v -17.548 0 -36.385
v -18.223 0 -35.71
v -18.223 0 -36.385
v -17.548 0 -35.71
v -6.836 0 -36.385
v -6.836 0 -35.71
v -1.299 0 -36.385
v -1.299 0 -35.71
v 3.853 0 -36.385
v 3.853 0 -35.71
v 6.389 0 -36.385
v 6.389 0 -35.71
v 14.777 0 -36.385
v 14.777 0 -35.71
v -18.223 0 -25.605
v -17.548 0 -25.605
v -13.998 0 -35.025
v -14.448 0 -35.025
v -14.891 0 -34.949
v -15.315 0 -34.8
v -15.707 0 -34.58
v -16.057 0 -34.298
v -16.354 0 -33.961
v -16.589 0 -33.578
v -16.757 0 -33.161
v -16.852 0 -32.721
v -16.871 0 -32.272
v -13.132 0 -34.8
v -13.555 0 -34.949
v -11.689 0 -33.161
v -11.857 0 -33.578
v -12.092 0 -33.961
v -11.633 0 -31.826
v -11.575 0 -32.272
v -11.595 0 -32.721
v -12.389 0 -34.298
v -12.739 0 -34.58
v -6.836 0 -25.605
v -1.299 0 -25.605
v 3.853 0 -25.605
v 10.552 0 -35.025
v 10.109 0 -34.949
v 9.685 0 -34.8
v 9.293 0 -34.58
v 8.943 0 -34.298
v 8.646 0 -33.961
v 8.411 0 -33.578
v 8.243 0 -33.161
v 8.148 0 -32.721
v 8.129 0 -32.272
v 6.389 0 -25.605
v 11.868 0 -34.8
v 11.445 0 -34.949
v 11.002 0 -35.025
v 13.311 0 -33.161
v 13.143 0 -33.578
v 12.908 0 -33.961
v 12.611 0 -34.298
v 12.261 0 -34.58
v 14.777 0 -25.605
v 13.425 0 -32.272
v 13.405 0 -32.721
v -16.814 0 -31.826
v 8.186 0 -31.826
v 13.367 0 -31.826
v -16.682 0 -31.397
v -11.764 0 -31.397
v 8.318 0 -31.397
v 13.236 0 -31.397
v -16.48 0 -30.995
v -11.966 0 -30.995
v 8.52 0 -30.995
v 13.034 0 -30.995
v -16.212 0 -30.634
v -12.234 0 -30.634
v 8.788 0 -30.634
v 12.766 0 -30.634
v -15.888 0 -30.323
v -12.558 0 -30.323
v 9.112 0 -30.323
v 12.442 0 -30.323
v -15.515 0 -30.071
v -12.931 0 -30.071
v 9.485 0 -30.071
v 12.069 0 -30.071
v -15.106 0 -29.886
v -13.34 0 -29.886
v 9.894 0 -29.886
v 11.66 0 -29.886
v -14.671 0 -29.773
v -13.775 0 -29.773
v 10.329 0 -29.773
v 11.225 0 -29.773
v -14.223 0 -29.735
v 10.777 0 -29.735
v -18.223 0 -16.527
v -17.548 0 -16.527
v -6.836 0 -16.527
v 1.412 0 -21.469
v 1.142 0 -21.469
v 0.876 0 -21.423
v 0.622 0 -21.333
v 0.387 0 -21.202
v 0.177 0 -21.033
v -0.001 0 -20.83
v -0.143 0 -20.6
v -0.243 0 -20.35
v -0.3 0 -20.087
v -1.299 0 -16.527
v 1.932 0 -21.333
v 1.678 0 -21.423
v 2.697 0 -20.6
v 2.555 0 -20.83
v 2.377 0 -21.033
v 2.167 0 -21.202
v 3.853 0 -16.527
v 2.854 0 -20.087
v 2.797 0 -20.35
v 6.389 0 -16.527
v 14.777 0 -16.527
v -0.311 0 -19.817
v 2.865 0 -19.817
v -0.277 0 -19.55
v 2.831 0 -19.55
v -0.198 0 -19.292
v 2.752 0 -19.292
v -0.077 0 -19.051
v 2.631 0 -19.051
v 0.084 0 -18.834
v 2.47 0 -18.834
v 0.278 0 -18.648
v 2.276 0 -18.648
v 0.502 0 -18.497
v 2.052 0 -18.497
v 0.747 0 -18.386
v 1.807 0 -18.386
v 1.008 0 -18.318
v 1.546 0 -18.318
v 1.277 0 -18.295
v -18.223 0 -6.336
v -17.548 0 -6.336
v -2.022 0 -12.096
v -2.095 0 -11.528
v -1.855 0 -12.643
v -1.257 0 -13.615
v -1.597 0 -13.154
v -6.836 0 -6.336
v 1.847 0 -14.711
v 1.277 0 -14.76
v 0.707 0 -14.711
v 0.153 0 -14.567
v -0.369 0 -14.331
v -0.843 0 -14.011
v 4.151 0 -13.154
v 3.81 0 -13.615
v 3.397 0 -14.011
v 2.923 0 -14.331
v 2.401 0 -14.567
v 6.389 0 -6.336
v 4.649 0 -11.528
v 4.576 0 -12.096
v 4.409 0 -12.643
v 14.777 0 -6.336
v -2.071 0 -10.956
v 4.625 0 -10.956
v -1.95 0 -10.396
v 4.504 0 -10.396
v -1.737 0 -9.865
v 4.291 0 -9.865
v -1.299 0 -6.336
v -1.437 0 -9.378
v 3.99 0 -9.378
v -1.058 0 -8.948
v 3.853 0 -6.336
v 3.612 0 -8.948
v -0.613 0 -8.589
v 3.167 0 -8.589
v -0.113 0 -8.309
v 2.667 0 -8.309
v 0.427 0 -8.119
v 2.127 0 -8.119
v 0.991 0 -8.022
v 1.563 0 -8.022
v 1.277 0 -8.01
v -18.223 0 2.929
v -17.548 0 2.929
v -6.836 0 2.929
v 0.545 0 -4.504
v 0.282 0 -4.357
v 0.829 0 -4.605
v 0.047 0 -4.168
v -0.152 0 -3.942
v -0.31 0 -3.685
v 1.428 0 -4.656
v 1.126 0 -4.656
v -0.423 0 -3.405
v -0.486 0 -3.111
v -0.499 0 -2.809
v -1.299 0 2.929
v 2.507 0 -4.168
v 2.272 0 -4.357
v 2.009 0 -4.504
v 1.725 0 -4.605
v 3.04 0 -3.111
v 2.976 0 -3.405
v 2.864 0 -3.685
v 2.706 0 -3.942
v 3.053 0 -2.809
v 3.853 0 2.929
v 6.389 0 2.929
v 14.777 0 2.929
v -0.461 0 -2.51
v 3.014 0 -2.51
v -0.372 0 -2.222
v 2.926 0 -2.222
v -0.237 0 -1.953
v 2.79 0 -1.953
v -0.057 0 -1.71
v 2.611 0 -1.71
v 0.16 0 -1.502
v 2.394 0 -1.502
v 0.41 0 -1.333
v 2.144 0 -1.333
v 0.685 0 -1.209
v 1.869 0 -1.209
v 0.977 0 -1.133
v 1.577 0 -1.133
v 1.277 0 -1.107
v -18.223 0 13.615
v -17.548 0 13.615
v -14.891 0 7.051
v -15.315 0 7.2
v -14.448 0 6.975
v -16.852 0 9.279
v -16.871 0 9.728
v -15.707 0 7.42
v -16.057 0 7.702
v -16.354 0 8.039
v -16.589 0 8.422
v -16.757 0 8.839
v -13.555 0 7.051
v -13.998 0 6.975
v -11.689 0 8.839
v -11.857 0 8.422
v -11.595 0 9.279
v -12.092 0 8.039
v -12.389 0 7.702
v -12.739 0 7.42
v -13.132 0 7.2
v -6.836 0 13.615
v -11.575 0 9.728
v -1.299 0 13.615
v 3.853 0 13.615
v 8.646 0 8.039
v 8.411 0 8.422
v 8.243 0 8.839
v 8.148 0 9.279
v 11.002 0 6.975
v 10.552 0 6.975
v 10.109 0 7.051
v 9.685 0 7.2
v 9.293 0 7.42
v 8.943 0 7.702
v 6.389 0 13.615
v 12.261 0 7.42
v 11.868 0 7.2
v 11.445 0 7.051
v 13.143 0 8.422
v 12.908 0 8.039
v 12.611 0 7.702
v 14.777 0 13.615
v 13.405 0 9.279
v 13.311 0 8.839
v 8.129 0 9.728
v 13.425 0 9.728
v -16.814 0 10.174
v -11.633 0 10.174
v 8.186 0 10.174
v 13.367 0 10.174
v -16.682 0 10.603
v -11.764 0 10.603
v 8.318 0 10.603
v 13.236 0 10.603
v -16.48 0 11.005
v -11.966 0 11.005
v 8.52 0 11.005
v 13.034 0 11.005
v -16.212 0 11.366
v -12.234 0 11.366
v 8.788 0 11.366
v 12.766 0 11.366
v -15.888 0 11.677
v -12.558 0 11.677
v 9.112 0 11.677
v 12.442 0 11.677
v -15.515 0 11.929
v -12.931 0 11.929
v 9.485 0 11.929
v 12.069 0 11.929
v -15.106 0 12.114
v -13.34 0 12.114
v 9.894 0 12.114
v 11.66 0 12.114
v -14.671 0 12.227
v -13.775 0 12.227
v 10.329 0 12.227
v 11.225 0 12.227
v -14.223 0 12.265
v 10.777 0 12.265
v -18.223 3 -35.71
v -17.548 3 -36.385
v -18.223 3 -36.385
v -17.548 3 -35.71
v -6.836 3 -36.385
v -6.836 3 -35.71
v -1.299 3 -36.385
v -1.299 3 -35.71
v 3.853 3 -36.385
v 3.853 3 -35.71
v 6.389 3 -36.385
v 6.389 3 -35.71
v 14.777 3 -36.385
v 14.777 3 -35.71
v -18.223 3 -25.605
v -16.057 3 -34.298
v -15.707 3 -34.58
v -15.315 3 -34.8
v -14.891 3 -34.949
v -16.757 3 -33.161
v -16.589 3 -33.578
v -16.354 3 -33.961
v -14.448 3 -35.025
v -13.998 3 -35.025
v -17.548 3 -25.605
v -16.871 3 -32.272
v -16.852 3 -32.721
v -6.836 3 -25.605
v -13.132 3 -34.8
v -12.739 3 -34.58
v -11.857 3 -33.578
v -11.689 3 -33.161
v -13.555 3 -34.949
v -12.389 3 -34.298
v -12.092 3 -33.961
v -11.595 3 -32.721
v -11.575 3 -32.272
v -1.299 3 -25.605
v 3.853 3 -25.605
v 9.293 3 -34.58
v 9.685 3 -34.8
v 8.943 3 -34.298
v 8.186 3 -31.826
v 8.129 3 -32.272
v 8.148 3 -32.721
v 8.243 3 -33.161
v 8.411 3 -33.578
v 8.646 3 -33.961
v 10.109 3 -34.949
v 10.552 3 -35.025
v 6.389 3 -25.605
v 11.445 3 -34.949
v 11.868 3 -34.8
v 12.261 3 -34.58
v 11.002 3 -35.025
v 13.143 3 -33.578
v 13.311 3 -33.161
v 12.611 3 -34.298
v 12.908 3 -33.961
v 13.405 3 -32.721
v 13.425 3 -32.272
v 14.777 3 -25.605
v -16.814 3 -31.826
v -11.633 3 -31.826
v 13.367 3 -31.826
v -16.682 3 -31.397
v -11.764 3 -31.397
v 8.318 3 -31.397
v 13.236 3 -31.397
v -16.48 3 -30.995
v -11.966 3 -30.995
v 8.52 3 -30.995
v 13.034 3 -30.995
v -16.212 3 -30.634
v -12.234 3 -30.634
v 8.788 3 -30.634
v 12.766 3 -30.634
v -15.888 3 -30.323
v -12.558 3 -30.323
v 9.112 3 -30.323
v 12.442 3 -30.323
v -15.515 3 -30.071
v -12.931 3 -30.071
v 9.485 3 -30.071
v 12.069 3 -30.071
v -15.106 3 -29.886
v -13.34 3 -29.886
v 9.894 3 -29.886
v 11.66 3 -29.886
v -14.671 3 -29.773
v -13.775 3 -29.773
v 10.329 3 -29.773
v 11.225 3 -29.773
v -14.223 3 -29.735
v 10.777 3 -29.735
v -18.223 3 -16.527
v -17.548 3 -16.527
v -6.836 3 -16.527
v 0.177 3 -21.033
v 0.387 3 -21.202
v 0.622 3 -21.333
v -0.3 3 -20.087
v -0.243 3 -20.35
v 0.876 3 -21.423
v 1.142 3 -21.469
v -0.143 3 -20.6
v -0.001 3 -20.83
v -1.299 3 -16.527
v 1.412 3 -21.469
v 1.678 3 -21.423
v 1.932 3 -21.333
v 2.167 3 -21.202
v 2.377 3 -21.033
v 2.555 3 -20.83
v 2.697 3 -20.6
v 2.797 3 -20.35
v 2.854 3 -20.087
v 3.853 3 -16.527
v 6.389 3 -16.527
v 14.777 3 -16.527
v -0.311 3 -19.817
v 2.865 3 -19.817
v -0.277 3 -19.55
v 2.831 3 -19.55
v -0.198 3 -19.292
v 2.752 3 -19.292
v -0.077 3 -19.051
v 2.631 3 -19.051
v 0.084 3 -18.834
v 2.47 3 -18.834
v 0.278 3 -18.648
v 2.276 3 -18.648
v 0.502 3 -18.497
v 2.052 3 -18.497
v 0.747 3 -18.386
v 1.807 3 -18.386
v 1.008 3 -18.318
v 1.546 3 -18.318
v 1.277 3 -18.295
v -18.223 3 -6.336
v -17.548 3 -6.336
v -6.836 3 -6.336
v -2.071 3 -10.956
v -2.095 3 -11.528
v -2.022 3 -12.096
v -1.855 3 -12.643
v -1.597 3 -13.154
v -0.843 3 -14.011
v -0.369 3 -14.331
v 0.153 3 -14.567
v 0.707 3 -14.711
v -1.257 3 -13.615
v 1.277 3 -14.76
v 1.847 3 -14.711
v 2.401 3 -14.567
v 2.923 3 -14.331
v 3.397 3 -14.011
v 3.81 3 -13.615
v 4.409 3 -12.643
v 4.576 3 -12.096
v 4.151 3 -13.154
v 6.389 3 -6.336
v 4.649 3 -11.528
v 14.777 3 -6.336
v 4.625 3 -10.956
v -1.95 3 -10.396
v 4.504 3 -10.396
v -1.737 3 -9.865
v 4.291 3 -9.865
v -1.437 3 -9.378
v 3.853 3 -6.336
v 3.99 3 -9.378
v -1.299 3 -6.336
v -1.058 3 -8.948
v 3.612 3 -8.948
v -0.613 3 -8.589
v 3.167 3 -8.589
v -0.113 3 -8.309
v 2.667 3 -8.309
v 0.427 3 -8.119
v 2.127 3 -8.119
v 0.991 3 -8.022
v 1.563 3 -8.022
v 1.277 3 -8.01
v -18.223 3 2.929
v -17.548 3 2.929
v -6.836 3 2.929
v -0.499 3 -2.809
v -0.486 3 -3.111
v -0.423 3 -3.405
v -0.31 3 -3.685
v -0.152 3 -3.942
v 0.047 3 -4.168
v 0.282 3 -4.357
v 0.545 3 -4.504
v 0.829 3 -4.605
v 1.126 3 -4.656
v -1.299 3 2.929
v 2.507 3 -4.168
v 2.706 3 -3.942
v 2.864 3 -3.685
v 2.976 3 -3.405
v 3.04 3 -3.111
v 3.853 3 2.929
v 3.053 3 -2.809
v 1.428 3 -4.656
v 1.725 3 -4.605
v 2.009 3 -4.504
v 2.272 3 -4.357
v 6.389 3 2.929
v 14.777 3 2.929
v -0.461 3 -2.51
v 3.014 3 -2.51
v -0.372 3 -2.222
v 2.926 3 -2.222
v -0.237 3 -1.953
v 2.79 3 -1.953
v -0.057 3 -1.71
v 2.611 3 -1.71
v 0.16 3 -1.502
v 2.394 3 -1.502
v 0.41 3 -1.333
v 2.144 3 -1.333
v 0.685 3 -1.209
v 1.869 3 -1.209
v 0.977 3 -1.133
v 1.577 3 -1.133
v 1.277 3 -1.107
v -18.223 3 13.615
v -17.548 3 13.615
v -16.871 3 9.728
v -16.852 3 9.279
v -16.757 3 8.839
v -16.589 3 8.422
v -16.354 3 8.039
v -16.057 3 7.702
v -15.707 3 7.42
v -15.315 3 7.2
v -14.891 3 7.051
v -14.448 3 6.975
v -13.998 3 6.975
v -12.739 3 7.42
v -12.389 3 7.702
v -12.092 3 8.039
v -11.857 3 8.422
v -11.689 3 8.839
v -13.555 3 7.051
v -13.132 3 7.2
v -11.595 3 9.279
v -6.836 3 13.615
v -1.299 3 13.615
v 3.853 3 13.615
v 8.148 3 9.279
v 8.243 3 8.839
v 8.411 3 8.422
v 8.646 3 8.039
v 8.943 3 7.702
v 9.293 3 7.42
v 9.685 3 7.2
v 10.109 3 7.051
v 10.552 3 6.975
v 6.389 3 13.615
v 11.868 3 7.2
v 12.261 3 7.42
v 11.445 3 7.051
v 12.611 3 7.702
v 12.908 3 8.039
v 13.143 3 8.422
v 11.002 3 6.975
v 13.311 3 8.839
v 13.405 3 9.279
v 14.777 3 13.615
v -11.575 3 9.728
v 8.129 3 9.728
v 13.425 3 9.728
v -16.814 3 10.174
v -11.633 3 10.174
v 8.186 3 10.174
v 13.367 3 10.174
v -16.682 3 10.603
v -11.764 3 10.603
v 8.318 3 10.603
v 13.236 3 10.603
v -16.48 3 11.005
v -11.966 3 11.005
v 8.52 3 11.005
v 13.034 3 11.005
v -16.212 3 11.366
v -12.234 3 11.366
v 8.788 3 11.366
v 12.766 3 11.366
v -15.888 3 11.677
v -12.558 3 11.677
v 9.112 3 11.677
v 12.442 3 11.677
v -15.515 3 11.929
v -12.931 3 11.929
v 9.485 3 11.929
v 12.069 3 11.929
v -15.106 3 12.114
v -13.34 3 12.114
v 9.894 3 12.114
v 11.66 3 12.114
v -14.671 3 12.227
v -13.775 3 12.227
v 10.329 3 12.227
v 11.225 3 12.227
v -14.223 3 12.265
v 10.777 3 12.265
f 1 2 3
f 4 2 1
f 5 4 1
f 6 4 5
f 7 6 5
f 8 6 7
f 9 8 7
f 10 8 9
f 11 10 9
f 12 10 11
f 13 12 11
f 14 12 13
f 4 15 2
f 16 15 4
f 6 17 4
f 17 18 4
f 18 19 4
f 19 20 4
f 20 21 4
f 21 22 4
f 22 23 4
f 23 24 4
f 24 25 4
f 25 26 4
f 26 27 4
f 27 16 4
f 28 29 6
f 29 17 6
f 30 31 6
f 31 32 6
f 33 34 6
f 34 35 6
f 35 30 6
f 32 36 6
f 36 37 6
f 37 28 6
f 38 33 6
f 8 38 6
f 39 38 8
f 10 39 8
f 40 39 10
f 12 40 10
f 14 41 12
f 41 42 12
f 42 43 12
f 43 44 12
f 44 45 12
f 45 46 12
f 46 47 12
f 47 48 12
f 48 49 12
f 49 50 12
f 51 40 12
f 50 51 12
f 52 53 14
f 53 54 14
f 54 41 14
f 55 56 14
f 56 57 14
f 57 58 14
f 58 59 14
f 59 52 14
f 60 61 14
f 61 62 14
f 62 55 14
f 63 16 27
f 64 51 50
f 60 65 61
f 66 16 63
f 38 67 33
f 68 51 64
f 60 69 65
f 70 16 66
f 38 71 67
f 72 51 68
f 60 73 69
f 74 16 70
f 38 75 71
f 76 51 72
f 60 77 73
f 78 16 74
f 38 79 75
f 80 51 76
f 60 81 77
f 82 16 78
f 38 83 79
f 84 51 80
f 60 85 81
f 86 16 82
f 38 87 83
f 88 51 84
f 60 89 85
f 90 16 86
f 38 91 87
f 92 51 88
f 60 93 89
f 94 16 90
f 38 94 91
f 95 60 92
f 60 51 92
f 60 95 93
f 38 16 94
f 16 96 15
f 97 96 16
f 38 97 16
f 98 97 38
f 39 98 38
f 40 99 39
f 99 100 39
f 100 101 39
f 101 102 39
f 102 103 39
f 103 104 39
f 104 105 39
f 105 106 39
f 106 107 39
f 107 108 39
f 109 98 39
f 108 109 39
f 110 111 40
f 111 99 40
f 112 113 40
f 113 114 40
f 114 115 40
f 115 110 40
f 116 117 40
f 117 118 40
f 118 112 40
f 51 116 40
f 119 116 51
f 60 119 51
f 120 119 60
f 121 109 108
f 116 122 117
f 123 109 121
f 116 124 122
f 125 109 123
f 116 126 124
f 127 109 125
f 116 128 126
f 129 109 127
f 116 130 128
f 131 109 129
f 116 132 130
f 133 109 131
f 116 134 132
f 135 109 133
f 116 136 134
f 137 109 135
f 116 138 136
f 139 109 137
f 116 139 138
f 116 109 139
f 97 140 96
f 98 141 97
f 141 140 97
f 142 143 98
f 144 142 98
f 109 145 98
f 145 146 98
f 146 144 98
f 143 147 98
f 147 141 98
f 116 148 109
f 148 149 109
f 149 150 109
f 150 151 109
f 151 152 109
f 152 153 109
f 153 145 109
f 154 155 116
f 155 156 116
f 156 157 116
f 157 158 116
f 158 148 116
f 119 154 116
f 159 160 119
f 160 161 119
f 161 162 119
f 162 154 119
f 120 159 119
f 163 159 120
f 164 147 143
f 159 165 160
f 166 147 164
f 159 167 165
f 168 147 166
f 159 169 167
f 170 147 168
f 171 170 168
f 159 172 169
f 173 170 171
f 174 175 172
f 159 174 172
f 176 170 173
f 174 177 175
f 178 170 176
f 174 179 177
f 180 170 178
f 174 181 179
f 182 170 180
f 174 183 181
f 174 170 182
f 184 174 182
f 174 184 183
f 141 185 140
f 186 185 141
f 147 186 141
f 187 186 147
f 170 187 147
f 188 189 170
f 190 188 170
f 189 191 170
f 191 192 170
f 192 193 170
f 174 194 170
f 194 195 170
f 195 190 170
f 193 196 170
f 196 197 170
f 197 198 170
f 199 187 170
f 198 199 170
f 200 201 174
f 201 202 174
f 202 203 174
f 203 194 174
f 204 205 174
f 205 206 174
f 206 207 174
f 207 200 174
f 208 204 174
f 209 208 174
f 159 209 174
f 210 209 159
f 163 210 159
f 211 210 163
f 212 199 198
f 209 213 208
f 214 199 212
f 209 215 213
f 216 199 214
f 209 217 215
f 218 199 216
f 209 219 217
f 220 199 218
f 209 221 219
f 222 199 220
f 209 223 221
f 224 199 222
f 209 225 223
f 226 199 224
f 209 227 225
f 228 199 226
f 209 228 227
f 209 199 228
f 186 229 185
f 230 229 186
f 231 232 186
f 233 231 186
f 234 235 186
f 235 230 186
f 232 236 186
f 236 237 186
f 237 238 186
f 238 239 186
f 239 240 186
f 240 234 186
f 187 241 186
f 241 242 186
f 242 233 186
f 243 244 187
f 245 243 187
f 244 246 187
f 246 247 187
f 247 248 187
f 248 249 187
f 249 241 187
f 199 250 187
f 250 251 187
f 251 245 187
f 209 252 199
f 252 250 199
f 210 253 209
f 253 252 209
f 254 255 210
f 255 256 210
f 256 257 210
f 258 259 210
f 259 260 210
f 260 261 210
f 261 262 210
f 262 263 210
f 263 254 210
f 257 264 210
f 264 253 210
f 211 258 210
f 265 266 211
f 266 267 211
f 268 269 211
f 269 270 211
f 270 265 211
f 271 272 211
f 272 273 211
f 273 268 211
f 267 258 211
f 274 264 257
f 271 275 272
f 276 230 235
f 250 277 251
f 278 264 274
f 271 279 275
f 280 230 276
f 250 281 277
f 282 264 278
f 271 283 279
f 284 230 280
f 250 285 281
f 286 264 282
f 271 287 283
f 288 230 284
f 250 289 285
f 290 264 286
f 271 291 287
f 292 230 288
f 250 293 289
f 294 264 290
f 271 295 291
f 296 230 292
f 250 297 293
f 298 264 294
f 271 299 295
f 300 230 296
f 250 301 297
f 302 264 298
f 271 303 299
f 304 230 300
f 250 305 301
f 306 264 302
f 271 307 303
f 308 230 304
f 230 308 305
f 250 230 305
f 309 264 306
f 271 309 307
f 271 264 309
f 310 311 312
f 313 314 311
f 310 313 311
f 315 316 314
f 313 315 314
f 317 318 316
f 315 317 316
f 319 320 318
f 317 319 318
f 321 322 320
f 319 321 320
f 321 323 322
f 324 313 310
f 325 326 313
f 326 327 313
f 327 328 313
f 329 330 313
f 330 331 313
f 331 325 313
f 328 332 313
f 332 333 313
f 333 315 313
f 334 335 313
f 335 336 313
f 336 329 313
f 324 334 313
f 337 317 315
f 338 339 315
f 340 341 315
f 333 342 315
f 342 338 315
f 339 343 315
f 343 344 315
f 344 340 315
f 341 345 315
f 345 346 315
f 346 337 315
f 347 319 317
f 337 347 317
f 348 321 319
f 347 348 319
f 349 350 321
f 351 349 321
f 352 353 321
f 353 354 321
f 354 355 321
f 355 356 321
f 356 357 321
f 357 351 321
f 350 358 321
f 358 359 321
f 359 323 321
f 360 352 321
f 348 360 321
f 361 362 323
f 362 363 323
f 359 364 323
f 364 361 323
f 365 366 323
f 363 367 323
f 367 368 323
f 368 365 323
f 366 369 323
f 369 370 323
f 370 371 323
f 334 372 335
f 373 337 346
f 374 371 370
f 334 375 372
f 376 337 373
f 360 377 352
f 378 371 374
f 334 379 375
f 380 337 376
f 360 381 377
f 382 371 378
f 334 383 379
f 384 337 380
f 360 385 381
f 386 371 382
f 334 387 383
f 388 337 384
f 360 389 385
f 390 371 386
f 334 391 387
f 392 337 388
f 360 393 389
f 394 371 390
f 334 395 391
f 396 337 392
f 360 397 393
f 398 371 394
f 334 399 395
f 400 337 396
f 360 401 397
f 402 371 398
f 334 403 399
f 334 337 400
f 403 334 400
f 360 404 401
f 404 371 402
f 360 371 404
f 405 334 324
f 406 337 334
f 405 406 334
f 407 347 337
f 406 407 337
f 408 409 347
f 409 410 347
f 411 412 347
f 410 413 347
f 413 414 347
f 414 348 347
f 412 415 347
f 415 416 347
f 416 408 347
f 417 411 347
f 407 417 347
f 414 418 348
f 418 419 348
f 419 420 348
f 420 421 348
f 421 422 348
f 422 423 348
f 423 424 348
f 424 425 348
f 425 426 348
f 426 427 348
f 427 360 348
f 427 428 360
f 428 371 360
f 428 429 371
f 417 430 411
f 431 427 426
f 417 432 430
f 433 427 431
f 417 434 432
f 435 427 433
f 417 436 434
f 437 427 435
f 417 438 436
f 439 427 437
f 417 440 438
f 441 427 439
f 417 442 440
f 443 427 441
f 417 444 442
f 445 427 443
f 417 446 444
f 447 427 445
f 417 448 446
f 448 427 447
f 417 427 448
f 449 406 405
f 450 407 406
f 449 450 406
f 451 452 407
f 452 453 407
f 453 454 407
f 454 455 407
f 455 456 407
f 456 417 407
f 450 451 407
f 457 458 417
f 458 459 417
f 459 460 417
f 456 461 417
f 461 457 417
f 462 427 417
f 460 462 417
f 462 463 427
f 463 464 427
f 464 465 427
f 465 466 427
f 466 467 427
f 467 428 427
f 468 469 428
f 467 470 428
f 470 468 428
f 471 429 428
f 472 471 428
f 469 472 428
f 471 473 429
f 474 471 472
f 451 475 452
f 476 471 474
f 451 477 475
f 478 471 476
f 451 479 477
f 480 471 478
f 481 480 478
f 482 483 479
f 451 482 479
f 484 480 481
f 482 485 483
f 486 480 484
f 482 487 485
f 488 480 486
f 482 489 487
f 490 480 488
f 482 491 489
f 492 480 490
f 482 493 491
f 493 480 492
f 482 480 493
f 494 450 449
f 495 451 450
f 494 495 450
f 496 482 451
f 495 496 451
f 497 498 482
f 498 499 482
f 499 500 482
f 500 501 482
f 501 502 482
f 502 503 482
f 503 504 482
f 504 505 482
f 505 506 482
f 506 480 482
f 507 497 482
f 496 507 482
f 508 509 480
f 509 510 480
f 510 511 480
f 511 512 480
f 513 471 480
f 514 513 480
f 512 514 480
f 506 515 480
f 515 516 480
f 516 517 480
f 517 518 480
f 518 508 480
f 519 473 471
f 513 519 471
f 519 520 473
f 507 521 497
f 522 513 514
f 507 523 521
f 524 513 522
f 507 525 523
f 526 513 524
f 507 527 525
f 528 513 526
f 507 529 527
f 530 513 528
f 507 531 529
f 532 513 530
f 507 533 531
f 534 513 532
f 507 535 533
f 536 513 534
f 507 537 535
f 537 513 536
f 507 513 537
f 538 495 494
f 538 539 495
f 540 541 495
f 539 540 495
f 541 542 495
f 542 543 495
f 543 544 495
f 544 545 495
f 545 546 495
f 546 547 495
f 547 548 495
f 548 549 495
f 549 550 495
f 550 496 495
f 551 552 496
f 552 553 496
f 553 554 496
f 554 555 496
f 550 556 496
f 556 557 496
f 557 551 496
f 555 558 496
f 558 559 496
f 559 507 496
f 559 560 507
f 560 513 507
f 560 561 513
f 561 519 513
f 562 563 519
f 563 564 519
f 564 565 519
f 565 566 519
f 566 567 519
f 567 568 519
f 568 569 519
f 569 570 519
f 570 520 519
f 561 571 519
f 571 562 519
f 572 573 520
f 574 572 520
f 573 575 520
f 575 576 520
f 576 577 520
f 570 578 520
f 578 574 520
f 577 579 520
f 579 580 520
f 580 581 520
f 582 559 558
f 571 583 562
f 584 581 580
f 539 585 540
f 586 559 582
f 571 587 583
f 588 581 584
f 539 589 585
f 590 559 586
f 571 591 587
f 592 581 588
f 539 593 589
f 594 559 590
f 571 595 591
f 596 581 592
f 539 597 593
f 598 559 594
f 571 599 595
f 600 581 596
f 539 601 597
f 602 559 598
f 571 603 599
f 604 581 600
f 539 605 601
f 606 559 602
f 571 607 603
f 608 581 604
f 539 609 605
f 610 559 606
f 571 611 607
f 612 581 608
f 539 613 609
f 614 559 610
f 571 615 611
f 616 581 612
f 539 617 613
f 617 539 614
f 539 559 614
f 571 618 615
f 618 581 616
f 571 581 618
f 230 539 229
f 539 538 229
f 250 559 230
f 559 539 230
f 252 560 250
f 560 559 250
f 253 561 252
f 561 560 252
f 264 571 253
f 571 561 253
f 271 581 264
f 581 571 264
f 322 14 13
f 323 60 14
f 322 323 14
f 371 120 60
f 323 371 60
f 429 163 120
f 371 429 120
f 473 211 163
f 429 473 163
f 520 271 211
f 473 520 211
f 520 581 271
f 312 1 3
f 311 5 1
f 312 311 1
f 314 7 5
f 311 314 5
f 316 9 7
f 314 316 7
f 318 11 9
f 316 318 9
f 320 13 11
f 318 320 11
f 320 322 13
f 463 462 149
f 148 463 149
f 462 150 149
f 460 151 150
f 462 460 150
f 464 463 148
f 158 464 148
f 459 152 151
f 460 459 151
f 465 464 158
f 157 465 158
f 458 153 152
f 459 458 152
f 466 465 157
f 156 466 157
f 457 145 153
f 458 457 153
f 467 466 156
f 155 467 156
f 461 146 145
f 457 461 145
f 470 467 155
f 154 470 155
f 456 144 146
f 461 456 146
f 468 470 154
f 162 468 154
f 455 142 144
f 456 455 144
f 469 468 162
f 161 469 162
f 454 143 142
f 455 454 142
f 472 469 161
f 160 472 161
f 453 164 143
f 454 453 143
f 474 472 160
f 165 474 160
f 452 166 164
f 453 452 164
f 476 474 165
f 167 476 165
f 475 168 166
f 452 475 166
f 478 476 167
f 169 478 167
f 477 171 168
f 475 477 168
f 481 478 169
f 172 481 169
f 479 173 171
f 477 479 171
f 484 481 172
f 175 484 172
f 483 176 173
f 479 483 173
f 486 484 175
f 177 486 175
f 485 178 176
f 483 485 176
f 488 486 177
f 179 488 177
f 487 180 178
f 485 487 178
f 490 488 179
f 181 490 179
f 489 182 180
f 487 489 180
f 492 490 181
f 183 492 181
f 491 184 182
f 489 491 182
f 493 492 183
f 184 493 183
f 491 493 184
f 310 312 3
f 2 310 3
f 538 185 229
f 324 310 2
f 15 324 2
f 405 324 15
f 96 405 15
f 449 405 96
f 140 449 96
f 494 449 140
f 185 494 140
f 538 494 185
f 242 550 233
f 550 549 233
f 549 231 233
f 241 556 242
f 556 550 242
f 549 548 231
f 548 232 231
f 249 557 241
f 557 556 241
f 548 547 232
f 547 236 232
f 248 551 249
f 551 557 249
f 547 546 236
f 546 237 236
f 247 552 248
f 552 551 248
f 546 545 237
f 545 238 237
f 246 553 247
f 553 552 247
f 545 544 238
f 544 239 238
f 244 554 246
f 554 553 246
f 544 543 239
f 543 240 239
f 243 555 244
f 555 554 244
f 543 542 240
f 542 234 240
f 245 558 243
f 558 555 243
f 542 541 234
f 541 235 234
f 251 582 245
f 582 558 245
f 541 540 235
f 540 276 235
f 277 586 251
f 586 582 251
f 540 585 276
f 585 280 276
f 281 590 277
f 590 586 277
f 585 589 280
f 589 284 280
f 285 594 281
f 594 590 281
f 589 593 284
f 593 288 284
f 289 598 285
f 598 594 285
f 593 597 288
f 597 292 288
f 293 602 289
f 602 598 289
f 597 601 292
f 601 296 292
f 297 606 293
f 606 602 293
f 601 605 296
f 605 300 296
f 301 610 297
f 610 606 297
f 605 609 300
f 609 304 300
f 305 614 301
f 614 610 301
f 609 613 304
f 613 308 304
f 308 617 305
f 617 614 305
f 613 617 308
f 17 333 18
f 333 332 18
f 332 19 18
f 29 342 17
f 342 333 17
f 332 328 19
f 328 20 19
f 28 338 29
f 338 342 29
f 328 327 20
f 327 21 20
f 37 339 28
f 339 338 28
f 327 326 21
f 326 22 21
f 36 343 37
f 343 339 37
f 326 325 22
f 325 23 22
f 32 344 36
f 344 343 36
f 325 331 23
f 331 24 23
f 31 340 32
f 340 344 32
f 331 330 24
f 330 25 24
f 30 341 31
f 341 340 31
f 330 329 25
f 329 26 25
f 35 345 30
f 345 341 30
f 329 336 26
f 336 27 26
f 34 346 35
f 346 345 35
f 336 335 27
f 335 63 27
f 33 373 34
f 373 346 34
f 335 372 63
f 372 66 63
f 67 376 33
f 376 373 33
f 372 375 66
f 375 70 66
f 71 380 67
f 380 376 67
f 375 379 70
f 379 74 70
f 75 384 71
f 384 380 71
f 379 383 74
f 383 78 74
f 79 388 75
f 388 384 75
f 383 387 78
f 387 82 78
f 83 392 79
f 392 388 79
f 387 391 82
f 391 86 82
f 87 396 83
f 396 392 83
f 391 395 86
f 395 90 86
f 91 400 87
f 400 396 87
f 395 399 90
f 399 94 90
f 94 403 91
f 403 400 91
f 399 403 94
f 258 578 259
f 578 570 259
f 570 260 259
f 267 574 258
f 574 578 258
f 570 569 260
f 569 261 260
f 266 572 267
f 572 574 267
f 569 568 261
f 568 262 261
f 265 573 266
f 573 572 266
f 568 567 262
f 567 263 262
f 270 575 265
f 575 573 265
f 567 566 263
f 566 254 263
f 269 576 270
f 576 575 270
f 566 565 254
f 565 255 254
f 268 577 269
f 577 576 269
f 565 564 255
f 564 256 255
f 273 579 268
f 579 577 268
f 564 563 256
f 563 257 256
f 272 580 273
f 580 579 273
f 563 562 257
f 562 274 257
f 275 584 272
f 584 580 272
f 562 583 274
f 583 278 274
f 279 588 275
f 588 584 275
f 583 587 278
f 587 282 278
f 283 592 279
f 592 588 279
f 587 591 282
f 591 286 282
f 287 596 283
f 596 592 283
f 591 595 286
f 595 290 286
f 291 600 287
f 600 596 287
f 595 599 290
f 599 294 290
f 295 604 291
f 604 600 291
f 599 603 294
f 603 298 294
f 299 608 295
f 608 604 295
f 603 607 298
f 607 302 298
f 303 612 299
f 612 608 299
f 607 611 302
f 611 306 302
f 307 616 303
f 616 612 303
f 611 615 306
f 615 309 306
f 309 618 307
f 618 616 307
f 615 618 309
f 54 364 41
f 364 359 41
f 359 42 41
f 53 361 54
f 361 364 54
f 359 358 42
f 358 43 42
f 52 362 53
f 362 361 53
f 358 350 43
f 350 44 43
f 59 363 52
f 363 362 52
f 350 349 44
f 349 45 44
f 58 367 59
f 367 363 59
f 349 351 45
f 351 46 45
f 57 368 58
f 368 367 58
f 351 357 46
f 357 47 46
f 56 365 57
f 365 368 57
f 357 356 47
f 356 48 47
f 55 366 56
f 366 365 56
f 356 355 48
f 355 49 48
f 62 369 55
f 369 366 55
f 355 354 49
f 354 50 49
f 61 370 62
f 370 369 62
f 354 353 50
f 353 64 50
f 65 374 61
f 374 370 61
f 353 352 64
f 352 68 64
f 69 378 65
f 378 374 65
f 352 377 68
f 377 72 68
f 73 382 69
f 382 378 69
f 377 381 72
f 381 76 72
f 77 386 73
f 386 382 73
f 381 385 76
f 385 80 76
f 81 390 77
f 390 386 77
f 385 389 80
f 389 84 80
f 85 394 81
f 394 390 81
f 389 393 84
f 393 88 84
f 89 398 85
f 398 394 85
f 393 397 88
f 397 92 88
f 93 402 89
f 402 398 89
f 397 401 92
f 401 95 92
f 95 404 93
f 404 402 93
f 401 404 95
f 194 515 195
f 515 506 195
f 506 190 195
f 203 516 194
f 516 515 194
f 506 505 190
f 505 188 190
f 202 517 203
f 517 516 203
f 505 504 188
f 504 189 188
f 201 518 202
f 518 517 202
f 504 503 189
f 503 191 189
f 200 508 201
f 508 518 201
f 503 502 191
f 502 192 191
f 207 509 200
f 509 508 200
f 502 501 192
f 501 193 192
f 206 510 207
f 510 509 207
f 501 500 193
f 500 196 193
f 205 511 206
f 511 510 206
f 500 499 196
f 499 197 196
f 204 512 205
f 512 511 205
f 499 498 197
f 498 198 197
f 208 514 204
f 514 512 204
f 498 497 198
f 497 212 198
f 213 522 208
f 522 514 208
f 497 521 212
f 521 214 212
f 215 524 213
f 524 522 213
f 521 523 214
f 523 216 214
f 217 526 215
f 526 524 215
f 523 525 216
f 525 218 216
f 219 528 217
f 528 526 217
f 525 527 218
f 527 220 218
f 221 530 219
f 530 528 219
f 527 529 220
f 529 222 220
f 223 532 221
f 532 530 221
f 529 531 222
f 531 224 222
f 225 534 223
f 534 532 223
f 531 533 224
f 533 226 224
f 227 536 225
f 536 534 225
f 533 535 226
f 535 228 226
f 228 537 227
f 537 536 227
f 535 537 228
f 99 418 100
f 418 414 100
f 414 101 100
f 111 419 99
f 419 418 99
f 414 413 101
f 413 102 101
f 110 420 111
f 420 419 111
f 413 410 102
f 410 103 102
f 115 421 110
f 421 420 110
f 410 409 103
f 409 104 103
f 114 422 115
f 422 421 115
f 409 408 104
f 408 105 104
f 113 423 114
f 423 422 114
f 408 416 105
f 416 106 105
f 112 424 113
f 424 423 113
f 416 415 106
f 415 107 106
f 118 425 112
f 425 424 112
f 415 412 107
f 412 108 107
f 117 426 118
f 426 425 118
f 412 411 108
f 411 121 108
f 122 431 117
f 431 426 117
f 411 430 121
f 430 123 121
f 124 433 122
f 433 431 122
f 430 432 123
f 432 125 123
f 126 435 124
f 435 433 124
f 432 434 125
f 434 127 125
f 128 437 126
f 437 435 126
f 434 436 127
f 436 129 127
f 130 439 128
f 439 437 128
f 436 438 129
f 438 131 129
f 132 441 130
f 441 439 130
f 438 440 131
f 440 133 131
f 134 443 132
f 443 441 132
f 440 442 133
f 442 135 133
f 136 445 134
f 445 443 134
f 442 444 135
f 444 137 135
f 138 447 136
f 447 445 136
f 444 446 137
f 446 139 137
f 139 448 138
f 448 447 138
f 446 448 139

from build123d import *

# Parameters (mm, degrees)
SKETCH1_W           = 25
SKETCH1_H           = 50
SKETCH1_R           = 3.375
BOSS_EXTRUDE1_DEPTH = 3
SKETCH2_W           = 50
SKETCH2_H           = 3
BOSS_EXTRUDE2_DEPTH = 8
SKETCH3_W           = 8
SKETCH3_H           = 50
BOSS_EXTRUDE3_DEPTH = 42
SKETCH4_R           = 2.65
CUT_EXTRUDE1_DEPTH  = 3.3
SKETCH5_R           = 5.802370205
CUT_EXTRUDE2_DEPTH  = 9
FILLET2_R           = 1
SKETCH6_R           = 12.7
BOSS_EXTRUDE4_DEPTH = 2
FILLET4_R           = 1
SKETCH8_R           = 1.589780168
SKETCH8_R_2         = 1.777428262
CUT_EXTRUDE3_DEPTH  = 10
SKETCH9_W           = 8
SKETCH9_H           = 42
CUT_EXTRUDE4_DEPTH  = 68.79439129
SKETCH10_W          = 33.517939775
SKETCH10_H          = 6.212330843
CUT_EXTRUDE5_DEPTH  = 55


with BuildPart() as part:
    # Sketch1 → Boss-Extrude1 (new body)
    with BuildSketch(Plane(origin=(0, 0, 0), x_dir=(1, 0, 0), z_dir=(0, 1, 0))):
        with Locations((2.276951673, 11.384758364)):
            Rectangle(SKETCH1_W, SKETCH1_H)
        with Locations(Location((1.276951673, 11.384758364, 0), (0, 0, 270))):
            Circle(SKETCH1_R, mode=Mode.SUBTRACT)
    extrude(amount=BOSS_EXTRUDE1_DEPTH)

    # Sketch2 → Boss-Extrude2 (add)
    with BuildSketch(Plane.ZY.offset(10.223048327)):
        with Locations((-11.384758364, 1.5)):
            Rectangle(SKETCH2_W, SKETCH2_H)
    extrude(amount=BOSS_EXTRUDE2_DEPTH)

    # Sketch3 → Boss-Extrude3 (add)
    with BuildSketch(Plane.XZ):
        with Locations((-14.223048327, -11.384758364)):
            Rectangle(SKETCH3_W, SKETCH3_H)
    extrude(amount=BOSS_EXTRUDE3_DEPTH)

    # Sketch4 → Cut-Extrude1 (cut)
    with BuildSketch(Plane(origin=(0, 3, 0), x_dir=(1, 0, 0), z_dir=(0, 1, 0))):
        with Locations(Location((-14.223048327, 32.384758364, 0), (0, 0, 270))):
            Circle(SKETCH4_R)
        with Locations(Location((-14.223048327, -9.615241636, 0), (0, 0, 270))):
            Circle(SKETCH4_R)
    cut_extrude1 = extrude(amount=-CUT_EXTRUDE1_DEPTH, mode=Mode.SUBTRACT)

    # Mirror1: Cut-Extrude1 across plane
    add(cut_extrude1.mirror(Plane.ZX.offset(-19.5)), mode=Mode.SUBTRACT)

    # Sketch5 → Cut-Extrude2 (cut)
    with BuildSketch(Plane.ZY.offset(18.223048327)):
        with Locations((-11.836279124, -21)):
            Circle(SKETCH5_R)
    extrude(amount=-CUT_EXTRUDE2_DEPTH, mode=Mode.SUBTRACT)

    # Fillet2
    fillet2_edges = [part.edges().sort_by_distance(p)[0] for p in [
        (-10.223048327, -21, -17.638649329),
    ]]
    fillet(fillet2_edges, radius=FILLET2_R)

    # Mirror2: Cut-Extrude1 across plane
    add(cut_extrude1.mirror(Plane.ZY.offset(1.723048327)), mode=Mode.SUBTRACT)

    # Sketch6 → Boss-Extrude4 (add)
    with BuildSketch(Plane(origin=(0, 3, 0), x_dir=(1, 0, 0), z_dir=(0, 1, 0))):
        with BuildLine():
            Line((14.776951673, 5.567542535), (14.776951673, 17.201974193))
            ThreePointArc((14.776951673, 17.201974193), (-13.423048327, 11.384758364), (14.776951673, 5.567542535))
        make_face()
        with Locations(Location((1.276951673, 11.384758364, 0), (0, 0, 270))):
            Circle(SKETCH6_R, mode=Mode.SUBTRACT)
    extrude(amount=BOSS_EXTRUDE4_DEPTH)

    # Fillet4
    # the kernel refuses this fillet: 1 mm, written as the material it takes off along each edge
    with BuildSketch(Plane(origin=(14.776951673, 5, -3.067542535), x_dir=(0, -1, 0), z_dir=(0, 0, -1))) as fillet4_piece_1:
        with BuildLine():
            CenterArc((FILLET4_R, FILLET4_R), FILLET4_R, 180, 90)
            Line((0, FILLET4_R), (0, 0))
            Line((0, 0), (FILLET4_R, 0))
        make_face()
    extrude(amount=16.634431658, mode=Mode.SUBTRACT)

    # Sketch8 → Cut-Extrude3 (cut)
    with BuildSketch(Plane(origin=(0, 3, 0), x_dir=(1, 0, 0), z_dir=(0, 1, 0))):
        with Locations(Location((1.276951673, 19.884758364, 0), (0, 0, 270))):
            Circle(SKETCH8_R)
        with Locations(Location((1.276951673, 2.884758364, 0), (0, 0, 270))):
            Circle(SKETCH8_R_2)
    extrude(amount=-CUT_EXTRUDE3_DEPTH, mode=Mode.SUBTRACT)

    # Sketch9 → Cut-Extrude4 (cut, through all)
    with BuildSketch(Plane.XY.offset(13.615241636)):
        with Locations((-14.223048327, -21)):
            Rectangle(SKETCH9_W, SKETCH9_H)
    extrude(amount=-CUT_EXTRUDE4_DEPTH, mode=Mode.SUBTRACT)

    # Sketch10 → Cut-Extrude5 (cut)
    with BuildSketch(Plane.XY.offset(13.615241636)):
        with Locations((-1.464078439, 6.106165422)):
            Rectangle(SKETCH10_W, SKETCH10_H)
    extrude(amount=-CUT_EXTRUDE5_DEPTH, mode=Mode.SUBTRACT)


solid = part.part
